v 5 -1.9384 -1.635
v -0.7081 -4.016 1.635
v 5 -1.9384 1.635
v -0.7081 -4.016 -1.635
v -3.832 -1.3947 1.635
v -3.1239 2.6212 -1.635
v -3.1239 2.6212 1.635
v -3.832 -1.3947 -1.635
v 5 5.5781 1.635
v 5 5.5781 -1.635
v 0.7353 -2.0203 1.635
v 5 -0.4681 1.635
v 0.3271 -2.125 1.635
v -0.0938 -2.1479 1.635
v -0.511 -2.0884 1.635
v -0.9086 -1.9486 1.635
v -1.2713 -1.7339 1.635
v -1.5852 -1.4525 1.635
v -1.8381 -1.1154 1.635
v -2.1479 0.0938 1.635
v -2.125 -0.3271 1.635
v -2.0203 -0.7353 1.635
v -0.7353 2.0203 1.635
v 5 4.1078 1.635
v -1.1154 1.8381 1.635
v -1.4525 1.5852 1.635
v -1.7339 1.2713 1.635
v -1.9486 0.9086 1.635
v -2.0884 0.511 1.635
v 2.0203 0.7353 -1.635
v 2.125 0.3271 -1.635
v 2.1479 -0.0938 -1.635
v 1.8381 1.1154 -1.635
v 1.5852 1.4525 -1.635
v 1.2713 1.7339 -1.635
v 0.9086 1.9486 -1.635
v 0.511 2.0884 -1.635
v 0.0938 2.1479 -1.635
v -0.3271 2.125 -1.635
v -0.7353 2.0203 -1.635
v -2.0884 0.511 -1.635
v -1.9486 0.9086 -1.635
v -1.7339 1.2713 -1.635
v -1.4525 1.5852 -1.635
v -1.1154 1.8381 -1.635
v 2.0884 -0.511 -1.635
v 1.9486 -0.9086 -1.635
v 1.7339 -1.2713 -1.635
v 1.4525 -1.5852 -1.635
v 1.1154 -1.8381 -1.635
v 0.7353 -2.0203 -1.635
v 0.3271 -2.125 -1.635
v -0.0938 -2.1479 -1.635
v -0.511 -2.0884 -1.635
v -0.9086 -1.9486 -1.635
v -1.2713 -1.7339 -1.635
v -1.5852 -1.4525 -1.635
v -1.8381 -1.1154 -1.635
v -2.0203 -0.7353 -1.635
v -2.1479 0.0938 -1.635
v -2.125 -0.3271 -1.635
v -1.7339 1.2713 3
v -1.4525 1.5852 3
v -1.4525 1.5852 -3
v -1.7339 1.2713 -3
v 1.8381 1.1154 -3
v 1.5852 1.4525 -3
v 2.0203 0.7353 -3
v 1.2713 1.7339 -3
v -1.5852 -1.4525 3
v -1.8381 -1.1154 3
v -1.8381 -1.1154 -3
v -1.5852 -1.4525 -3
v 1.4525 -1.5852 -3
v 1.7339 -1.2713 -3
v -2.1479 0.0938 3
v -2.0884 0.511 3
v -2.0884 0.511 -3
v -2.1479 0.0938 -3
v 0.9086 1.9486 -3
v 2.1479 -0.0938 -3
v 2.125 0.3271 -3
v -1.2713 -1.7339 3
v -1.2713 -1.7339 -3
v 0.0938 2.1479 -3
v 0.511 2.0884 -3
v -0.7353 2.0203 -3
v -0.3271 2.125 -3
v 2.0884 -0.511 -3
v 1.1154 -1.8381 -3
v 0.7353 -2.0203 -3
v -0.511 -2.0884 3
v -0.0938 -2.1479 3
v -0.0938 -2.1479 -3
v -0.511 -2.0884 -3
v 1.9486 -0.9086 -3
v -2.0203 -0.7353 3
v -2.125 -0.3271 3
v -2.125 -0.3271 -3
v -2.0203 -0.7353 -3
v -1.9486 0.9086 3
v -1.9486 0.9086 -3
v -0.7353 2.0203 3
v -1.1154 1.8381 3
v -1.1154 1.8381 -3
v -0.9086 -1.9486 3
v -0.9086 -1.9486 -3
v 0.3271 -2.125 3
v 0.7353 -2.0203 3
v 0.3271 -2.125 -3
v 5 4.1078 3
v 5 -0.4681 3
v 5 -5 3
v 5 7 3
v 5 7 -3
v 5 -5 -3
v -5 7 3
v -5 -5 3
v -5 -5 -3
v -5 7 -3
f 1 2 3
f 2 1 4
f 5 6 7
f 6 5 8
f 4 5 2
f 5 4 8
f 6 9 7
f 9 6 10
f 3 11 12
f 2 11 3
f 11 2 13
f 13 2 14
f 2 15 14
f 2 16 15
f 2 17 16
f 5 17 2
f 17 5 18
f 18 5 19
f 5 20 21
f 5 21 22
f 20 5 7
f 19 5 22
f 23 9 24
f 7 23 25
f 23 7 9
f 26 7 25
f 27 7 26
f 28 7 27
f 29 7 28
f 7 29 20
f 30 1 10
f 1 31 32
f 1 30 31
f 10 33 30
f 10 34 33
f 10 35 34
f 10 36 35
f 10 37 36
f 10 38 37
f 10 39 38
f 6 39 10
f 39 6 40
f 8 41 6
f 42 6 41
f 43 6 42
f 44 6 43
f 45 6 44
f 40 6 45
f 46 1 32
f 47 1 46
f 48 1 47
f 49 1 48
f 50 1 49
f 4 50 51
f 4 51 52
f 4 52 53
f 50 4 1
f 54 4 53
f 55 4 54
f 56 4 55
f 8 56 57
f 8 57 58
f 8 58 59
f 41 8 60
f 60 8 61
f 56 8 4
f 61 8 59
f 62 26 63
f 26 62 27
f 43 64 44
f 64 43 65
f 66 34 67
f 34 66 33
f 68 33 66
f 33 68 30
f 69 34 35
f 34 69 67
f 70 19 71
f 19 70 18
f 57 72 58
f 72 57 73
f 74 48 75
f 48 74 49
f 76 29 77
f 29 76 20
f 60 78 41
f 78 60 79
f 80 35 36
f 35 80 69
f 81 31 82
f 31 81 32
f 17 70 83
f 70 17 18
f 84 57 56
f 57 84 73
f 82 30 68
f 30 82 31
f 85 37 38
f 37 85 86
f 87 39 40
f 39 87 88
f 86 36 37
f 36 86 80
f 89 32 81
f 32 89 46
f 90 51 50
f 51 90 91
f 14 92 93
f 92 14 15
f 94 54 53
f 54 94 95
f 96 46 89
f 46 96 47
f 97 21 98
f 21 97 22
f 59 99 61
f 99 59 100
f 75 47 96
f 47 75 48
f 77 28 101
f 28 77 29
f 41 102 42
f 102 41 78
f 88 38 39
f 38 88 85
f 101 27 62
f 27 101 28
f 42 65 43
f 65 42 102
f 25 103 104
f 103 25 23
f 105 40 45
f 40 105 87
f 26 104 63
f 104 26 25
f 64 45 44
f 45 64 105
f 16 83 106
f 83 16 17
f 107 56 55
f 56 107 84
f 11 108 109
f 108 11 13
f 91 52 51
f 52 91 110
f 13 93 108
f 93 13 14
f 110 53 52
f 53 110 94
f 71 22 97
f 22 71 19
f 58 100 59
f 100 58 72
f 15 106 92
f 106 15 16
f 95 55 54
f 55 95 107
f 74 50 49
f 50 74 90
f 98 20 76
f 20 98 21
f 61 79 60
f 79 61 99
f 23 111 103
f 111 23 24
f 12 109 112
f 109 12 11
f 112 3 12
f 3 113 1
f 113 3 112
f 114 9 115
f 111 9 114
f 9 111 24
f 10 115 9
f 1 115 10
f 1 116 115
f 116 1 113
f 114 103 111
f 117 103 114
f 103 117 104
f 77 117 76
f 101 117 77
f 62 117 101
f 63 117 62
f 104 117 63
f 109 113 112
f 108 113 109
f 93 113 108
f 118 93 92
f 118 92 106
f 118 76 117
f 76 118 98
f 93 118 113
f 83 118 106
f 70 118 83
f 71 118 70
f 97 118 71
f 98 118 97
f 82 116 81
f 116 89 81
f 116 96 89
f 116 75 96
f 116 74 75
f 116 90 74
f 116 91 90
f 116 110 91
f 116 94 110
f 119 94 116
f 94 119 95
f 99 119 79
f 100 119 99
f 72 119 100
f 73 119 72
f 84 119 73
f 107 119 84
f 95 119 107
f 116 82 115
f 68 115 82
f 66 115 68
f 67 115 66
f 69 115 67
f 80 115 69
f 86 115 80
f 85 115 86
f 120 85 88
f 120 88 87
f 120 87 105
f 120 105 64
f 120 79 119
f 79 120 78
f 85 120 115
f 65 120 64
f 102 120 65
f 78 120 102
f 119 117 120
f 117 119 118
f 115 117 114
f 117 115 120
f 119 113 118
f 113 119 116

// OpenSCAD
/* Some common screw dimensions */


inf = 400; // basically infinity

/********************************************************************************/
// M3 dimensions

m3HoleRadiusSlack = 0.15;
m3Diameter = 3.0;
m3Radius = m3Diameter/2.0;

m3RadiusSlacked = m3Radius + m3HoleRadiusSlack;

// legacy TODO: replace
m3ptr = m3RadiusSlacked;

// NUTS!
m3HexNutWidthAcrossFlats = 5.41;
m3HexNutWidthAcrossCorners = FtoG(m3HexNutWidthAcrossFlats);

m3HexNutThickness = 2.18;

module m3HexNutPocketNegative() {
  hexNutPocketNegative(m3RadiusSlacked,
                       m3HexNutWidthAcrossCorners/2 + 0.1,
                       m3HexNutThickness + 0.2);
}


// TODO: remove test

*difference() {
  cube(size=[8,12,5], center=true);

  rotate(a=[0,0,20])
  m3HexNutPocketNegative();
}

*m3HexNutPocketNegative();


/********************************************************************************/
// M4 dimensions

m4HoleRadiusSlack = 0.15;
m4Diameter = 4.0;
m4Radius = m4Diameter/2.0;
m4RadiusSlacked = m4Radius + m4HoleRadiusSlack;

m4HexNutWidthAcrossFlats = 6.89;
m4HexNutWidthAcrossCorners = FtoG(m4HexNutWidthAcrossFlats);

m4HexNutThickness = 3.07;

module m4HexNutPocketNegative() {
  hexNutPocketNegative(m4RadiusSlacked,
                       m4HexNutWidthAcrossCorners/2 + 0.1,
                       m4HexNutThickness + 0.2);
}


// TODO: remove test

difference() {
  translate(v=[0,1,0])
  cube(size=[10,12,6], center=true);

  rotate(a=[0,0,20])
  m4HexNutPocketNegative();
}

*m4HexNutPocketNegative();

/********************************************************************************/

// Convert a regular hexagon widthAcrossFlats to widthAcrossCorners
function FtoG(widthAcrossFlats) = widthAcrossFlats * (2/sqrt(3));  

// Convert a regular hexagon widthAcrossCorners to widthAcrossFlats
function GtoF(widthAcrossCorners) =  widthAcrossCorners * (sqrt(3)/2);


module hexNutPocketNegative(
  innerRadius,
  widthAcrossCorners,
  thickness)
{

  union() {

    hull() {
      // hexagonal cylinder representing where the nut should fit
      cylinder(r=widthAcrossCorners, h=thickness, center=true, $fn=6);

      // negative volume for sliding in the nut
      translate(v=[inf,0,0])
      cylinder(r=widthAcrossCorners, h=thickness, center=true, $fn=6);
    }

    // negative volume for screw lead
    translate(v=[0,0,-10])
    cylinder(r=innerRadius, h = inf, $fn=32);

    hull() {
     translate(v=[inf,0,0])
       cylinder(r=innerRadius, h = inf, $fn=32);
     cylinder(r=innerRadius, h = inf, $fn=32);
    }
  }
}
